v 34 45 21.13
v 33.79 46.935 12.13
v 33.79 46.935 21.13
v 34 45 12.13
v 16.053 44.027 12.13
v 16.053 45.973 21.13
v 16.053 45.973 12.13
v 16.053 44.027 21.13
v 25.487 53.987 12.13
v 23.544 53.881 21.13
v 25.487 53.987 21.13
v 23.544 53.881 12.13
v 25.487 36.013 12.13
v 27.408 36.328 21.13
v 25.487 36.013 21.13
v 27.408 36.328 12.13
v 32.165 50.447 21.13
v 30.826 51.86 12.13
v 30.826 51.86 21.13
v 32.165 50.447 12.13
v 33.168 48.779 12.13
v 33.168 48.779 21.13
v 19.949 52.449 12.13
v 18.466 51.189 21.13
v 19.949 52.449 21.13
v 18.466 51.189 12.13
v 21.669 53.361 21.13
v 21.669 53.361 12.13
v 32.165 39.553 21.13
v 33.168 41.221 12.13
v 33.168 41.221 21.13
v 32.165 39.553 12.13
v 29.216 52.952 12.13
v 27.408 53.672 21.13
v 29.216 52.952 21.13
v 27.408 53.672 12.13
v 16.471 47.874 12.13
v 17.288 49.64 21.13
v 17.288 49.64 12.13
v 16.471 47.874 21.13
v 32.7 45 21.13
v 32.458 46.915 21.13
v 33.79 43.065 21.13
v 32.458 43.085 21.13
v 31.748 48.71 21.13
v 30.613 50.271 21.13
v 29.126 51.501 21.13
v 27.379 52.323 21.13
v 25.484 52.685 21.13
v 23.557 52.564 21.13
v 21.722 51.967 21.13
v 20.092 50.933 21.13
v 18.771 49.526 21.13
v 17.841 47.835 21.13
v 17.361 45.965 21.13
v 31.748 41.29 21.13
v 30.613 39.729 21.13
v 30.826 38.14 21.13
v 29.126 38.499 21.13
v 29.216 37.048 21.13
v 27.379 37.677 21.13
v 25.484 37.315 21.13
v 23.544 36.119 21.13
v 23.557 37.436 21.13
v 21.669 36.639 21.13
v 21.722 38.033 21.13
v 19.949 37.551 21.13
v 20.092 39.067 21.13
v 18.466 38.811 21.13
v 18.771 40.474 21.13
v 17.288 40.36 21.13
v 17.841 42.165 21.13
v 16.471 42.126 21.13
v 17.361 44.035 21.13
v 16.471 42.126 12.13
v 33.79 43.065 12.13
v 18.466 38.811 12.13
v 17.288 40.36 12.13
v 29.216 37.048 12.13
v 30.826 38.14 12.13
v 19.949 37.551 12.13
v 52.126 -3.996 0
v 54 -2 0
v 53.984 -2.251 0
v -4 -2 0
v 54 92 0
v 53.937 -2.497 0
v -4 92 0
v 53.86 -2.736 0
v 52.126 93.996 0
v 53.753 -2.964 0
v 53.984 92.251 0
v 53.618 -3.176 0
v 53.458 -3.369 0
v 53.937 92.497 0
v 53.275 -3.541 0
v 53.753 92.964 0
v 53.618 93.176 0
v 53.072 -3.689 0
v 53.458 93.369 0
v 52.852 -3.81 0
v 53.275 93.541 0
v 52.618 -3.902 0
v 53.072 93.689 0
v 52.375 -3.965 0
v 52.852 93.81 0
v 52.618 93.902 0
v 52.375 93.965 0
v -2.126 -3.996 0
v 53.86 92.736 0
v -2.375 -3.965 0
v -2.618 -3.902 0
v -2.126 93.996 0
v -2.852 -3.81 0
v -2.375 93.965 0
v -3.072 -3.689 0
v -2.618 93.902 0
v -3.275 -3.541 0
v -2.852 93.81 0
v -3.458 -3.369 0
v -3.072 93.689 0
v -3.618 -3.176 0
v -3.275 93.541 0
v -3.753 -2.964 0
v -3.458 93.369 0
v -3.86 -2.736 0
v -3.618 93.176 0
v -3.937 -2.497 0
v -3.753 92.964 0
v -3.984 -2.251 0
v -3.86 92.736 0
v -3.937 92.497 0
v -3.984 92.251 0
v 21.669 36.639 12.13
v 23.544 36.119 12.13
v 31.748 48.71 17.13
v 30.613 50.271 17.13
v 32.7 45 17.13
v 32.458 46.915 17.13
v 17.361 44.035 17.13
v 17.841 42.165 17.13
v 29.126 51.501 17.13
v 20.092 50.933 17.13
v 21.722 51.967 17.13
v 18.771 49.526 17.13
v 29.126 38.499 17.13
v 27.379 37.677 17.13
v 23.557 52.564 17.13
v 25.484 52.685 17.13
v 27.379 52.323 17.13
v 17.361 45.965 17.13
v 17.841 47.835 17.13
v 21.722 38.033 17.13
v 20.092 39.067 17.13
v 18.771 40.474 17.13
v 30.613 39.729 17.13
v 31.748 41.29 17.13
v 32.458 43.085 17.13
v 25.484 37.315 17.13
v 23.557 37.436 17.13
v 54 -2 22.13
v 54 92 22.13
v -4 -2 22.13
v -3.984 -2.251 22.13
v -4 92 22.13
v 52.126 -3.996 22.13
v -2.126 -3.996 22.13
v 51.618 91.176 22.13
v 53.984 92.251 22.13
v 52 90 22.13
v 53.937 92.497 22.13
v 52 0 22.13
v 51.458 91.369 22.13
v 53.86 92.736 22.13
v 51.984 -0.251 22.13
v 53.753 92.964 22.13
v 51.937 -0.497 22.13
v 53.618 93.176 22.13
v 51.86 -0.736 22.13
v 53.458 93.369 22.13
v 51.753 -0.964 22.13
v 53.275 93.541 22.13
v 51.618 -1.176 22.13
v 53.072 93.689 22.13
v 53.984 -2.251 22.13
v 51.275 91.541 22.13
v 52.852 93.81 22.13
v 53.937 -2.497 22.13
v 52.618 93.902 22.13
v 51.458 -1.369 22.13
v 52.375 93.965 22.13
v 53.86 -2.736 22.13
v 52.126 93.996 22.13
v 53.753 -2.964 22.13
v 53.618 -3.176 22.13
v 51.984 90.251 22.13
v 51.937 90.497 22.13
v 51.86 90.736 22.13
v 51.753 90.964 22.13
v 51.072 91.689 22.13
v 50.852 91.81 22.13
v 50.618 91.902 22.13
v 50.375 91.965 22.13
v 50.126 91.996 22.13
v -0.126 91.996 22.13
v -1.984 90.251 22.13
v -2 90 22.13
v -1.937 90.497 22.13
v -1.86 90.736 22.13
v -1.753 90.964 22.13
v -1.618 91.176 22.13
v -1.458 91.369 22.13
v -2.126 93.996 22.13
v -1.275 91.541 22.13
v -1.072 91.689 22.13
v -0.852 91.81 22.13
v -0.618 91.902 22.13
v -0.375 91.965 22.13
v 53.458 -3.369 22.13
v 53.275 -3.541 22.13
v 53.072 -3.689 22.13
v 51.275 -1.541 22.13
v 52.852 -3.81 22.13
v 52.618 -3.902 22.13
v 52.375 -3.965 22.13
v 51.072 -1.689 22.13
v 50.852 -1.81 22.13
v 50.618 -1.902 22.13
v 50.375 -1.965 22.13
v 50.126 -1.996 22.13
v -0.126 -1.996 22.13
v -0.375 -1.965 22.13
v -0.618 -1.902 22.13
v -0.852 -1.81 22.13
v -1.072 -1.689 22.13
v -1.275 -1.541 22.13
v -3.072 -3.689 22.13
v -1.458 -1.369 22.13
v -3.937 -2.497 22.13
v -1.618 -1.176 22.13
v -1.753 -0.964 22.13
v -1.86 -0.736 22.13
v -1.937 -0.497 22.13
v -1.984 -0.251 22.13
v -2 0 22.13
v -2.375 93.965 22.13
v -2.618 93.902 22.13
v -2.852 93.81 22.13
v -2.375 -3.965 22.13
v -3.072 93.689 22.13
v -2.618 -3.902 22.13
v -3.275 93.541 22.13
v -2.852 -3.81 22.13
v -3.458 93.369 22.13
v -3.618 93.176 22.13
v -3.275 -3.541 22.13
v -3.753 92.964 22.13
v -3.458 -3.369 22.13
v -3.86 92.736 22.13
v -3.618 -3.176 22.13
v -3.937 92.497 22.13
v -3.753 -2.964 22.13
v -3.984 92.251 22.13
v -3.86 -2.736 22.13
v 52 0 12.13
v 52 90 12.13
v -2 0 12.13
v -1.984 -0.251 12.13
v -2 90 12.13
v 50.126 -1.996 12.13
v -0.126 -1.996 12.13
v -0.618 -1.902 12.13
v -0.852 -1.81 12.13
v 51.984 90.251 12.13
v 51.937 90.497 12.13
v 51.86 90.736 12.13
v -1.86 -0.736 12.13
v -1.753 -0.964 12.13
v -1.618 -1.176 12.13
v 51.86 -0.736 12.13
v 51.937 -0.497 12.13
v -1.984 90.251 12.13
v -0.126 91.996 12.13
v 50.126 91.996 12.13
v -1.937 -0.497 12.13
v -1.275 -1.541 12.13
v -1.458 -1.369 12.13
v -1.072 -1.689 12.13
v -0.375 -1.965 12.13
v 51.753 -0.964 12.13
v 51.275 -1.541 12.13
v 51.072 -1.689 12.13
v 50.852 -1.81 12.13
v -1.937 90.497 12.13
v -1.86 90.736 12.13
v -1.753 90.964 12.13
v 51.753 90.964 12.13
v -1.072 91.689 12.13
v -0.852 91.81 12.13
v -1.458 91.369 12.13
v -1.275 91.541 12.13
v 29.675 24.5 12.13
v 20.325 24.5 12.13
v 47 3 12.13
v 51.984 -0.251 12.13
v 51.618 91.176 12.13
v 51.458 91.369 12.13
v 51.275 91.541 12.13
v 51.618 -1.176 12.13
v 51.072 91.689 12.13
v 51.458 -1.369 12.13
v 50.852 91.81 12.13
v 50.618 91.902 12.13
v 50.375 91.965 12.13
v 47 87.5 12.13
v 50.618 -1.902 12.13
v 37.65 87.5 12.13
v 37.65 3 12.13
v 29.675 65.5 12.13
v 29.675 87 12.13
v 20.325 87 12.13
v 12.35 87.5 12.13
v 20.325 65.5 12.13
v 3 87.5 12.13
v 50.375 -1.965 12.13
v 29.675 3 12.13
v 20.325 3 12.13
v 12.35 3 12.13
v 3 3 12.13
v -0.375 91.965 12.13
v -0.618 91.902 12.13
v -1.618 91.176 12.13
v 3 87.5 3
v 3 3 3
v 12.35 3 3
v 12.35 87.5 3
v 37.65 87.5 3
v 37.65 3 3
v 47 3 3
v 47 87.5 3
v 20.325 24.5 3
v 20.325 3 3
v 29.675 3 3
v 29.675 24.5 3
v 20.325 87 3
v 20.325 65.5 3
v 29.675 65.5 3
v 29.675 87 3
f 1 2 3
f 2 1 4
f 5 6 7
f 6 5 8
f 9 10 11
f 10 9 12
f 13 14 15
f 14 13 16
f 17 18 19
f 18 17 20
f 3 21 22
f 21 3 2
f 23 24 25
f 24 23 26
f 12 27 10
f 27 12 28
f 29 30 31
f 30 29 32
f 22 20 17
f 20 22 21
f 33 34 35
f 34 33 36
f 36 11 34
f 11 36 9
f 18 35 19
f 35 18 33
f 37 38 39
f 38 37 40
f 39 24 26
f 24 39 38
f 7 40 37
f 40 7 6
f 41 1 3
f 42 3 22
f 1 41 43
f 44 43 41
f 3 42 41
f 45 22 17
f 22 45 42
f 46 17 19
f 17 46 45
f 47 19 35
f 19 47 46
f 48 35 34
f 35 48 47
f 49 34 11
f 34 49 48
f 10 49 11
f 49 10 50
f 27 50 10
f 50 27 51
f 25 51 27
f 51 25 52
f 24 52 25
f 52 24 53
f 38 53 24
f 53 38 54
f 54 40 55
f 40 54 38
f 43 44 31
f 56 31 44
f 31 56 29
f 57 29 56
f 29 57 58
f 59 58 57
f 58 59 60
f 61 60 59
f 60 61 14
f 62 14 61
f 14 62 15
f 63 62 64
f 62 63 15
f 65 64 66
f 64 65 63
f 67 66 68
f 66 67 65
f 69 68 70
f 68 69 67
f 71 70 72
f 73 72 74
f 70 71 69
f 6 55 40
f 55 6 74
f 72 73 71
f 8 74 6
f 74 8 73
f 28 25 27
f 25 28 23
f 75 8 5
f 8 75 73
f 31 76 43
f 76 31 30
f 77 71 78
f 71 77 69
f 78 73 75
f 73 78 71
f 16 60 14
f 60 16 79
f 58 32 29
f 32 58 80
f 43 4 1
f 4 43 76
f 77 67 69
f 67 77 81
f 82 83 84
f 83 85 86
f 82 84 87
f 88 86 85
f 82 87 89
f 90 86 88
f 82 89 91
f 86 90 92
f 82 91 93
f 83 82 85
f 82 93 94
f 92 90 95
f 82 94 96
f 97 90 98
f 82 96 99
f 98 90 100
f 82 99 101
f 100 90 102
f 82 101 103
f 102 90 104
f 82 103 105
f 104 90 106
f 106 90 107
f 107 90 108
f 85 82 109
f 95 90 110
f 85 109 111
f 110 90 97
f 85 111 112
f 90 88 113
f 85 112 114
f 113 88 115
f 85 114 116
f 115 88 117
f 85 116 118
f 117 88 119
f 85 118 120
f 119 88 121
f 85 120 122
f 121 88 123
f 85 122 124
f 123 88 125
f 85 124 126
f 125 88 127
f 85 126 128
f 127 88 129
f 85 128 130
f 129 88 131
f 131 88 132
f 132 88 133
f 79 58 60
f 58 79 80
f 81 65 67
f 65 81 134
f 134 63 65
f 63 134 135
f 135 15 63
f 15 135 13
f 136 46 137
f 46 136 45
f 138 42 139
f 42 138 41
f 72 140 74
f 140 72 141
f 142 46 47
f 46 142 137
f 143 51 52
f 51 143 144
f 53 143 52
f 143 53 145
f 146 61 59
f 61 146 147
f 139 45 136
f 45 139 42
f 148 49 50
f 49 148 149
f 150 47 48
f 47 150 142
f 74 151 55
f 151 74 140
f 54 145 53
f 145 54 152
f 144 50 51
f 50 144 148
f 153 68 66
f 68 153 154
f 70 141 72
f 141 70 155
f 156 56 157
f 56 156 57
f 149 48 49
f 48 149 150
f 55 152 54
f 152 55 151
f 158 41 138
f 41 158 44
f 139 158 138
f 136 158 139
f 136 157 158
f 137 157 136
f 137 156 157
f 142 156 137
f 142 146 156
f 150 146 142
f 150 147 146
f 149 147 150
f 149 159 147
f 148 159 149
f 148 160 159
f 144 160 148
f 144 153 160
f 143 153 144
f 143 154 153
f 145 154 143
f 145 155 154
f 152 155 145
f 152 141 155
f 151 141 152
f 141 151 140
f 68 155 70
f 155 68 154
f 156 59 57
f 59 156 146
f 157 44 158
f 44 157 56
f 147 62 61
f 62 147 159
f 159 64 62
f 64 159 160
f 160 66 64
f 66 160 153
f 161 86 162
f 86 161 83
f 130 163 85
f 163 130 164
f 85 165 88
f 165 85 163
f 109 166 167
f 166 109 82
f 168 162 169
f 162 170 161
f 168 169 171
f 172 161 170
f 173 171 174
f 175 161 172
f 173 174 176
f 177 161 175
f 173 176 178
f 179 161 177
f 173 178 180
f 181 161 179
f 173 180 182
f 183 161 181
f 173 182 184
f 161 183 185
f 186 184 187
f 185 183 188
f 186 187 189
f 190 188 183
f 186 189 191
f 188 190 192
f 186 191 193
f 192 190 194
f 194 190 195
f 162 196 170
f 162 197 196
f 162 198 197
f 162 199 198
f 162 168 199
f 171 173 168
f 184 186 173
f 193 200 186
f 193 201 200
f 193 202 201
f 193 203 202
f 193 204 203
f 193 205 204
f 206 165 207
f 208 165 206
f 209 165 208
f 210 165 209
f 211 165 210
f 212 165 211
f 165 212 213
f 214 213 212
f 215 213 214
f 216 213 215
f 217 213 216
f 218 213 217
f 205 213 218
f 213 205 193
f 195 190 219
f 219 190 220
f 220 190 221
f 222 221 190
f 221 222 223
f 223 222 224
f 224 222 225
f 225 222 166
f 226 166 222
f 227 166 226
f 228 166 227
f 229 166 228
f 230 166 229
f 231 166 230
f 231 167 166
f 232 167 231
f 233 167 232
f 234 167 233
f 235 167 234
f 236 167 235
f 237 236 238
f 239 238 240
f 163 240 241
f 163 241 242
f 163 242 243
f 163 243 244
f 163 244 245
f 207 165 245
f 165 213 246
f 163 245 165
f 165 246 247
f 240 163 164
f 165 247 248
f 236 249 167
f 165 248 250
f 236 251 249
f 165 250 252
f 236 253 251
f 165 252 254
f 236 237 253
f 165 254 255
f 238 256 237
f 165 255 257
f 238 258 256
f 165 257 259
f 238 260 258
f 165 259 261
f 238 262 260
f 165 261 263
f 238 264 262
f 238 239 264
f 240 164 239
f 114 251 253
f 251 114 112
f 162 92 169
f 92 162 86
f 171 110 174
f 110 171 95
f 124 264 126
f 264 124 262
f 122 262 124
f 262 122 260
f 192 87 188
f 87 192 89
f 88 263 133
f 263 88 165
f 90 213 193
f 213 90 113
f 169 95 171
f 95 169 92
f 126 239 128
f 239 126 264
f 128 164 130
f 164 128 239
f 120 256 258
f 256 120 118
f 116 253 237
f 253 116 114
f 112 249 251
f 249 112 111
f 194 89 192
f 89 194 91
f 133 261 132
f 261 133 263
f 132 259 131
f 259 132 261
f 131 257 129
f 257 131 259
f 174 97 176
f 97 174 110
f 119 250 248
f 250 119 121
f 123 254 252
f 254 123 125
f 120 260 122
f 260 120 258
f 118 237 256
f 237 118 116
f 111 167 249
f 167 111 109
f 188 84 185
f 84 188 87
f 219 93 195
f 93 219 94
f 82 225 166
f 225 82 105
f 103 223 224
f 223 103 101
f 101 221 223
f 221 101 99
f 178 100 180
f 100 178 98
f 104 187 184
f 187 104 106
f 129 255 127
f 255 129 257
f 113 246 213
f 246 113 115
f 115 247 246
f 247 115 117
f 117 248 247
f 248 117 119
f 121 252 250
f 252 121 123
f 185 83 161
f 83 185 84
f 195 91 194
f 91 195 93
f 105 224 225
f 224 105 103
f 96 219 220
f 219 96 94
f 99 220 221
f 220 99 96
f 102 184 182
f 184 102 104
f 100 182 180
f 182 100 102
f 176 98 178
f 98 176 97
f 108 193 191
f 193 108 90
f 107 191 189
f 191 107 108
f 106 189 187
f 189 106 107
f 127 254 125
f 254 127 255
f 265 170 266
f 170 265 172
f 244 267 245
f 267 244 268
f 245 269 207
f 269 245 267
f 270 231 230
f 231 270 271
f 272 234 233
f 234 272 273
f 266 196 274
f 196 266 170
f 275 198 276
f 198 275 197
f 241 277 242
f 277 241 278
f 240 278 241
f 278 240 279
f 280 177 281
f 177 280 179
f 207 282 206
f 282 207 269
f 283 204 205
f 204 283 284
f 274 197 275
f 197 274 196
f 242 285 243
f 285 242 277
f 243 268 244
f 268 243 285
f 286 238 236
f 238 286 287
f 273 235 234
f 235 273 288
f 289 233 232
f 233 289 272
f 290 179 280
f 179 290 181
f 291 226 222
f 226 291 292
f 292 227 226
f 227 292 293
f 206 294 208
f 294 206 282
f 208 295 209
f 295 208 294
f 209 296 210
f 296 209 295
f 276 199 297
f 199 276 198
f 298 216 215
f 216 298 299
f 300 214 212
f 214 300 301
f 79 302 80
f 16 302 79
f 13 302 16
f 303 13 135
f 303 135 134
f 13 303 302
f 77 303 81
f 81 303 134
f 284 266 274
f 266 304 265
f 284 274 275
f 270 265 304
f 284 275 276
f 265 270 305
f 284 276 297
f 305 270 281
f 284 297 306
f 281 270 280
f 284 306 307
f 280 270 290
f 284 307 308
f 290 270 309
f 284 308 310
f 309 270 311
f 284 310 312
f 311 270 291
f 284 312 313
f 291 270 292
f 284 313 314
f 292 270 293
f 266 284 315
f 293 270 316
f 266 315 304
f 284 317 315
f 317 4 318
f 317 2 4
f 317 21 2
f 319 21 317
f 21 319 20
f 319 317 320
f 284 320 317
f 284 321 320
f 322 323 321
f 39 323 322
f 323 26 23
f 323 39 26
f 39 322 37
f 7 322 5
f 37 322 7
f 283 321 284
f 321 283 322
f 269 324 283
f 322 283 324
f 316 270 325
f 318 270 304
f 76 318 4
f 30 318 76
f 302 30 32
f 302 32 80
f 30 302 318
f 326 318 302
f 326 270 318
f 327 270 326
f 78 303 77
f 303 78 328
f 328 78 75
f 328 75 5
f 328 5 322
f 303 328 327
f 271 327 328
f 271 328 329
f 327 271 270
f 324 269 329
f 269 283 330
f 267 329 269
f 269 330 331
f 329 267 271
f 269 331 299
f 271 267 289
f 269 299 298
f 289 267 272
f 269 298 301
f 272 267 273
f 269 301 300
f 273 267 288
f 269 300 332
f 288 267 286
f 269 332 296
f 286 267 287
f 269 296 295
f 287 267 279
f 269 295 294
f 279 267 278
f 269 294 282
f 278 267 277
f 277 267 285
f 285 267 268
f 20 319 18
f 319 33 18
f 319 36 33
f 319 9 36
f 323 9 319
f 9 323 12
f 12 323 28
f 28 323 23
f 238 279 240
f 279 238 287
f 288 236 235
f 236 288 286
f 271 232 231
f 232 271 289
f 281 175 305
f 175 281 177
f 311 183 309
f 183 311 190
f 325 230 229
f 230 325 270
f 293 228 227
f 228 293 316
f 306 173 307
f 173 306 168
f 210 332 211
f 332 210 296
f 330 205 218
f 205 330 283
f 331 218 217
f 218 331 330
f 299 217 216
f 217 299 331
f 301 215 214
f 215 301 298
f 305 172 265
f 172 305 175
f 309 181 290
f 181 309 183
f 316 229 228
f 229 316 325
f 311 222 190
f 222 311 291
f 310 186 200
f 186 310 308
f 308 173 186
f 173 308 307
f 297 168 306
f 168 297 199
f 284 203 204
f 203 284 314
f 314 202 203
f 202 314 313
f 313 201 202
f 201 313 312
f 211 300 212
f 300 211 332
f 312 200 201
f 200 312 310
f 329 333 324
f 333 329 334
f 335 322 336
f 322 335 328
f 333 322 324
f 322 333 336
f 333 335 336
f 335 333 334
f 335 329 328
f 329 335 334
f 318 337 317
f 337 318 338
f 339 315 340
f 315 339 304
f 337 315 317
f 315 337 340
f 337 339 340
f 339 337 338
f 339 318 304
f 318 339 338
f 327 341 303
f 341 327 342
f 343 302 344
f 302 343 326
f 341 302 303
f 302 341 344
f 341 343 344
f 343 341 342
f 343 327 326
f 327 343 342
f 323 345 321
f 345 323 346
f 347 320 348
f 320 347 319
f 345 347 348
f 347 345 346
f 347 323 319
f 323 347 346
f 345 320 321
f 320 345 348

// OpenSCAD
woodenCubeWidth = 10.4 + .1;
woodenCubeLength = 9.05 + .3;
//TODO: !!!!!!!!!!!!!!!!!Fix this
woodenCubeHeight = 17.93 + .2; 

protrusionHeight = 9;

length = 50;
width = 90;
floorHeight = 3;
height = (woodenCubeHeight - protrusionHeight) + floorHeight;
totalHeight = height + protrusionHeight;
magnetPadding = 15;
magnetBaseOuterDiameter = 18;
magnetBaseInnerDiameter = 15.4;
magnetHeight = 4.0;

woodenCubeBoxHeight = woodenCubeHeight - protrusionHeight;
woodenCubeBoxLength = woodenCubeLength;

wallThickness = 3;
lipThickness = 2;

woodenCubeCount = 8;
shortWoodenCubeCount = 2;
woodenCubeBoxWidth = woodenCubeWidth * woodenCubeCount + .5;
shortWoodenCubeBoxWidth = woodenCubeWidth * shortWoodenCubeCount + .5;

union() {    
    difference() {    
                $fn=50;
            difference(){
                translate([-lipThickness, -lipThickness, 0])
                    minkowski()
                    {
                        cube([length + lipThickness * 2, width + lipThickness * 2, totalHeight]);
                        cylinder(r=2,h=1);
                    }
                    
                translate([0, 0, height])
                    minkowski()
                    {
                        cube([length, width, totalHeight - height]);
                        cylinder(r=2,h=1);
                    }
                
                translate([wallThickness, wallThickness, 0])
                    WoodenCubeBox();
//                translate([wallThickness * 2 + woodenCubeLength, wallThickness, 0])
//                    WoodenCubeBox();
//                translate([wallThickness * 3 + woodenCubeLength * 2, wallThickness, 0])
//                    WoodenCubeBox();
                
                translate([length - (wallThickness + woodenCubeLength), wallThickness, 0])
                    WoodenCubeBox();
//                translate([length - (wallThickness * 2 + woodenCubeLength * 2), wallThickness, 0])
//                    WoodenCubeBox();
//                translate([length - (wallThickness * 3 + woodenCubeLength * 3), wallThickness, 0])
//                    WoodenCubeBox();
                
                translate([length/2 - woodenCubeLength/2, wallThickness, 0])
                    ShortWoodenCubeBox();
                translate([length/2 - woodenCubeLength/2, width - (wallThickness + shortWoodenCubeBoxWidth), 0])
                    ShortWoodenCubeBox();
            }

    }
    difference() {
        translate([length/2, width/2, 0])
            cylinder(height + protrusionHeight, d=magnetBaseOuterDiameter);
        translate([length/2, width/2, height + protrusionHeight - magnetHeight])
             cylinder(magnetHeight, d=magnetBaseInnerDiameter);
    }
}
    
    

module WoodenCubeBox()
{

    translate([0, 0, height - woodenCubeBoxHeight])
        cube([woodenCubeBoxLength, woodenCubeBoxWidth, woodenCubeBoxHeight]);

}


module ShortWoodenCubeBox()
{

    translate([0, 0, height - woodenCubeBoxHeight])
        cube([woodenCubeBoxLength, shortWoodenCubeBoxWidth, woodenCubeBoxHeight]);

}
